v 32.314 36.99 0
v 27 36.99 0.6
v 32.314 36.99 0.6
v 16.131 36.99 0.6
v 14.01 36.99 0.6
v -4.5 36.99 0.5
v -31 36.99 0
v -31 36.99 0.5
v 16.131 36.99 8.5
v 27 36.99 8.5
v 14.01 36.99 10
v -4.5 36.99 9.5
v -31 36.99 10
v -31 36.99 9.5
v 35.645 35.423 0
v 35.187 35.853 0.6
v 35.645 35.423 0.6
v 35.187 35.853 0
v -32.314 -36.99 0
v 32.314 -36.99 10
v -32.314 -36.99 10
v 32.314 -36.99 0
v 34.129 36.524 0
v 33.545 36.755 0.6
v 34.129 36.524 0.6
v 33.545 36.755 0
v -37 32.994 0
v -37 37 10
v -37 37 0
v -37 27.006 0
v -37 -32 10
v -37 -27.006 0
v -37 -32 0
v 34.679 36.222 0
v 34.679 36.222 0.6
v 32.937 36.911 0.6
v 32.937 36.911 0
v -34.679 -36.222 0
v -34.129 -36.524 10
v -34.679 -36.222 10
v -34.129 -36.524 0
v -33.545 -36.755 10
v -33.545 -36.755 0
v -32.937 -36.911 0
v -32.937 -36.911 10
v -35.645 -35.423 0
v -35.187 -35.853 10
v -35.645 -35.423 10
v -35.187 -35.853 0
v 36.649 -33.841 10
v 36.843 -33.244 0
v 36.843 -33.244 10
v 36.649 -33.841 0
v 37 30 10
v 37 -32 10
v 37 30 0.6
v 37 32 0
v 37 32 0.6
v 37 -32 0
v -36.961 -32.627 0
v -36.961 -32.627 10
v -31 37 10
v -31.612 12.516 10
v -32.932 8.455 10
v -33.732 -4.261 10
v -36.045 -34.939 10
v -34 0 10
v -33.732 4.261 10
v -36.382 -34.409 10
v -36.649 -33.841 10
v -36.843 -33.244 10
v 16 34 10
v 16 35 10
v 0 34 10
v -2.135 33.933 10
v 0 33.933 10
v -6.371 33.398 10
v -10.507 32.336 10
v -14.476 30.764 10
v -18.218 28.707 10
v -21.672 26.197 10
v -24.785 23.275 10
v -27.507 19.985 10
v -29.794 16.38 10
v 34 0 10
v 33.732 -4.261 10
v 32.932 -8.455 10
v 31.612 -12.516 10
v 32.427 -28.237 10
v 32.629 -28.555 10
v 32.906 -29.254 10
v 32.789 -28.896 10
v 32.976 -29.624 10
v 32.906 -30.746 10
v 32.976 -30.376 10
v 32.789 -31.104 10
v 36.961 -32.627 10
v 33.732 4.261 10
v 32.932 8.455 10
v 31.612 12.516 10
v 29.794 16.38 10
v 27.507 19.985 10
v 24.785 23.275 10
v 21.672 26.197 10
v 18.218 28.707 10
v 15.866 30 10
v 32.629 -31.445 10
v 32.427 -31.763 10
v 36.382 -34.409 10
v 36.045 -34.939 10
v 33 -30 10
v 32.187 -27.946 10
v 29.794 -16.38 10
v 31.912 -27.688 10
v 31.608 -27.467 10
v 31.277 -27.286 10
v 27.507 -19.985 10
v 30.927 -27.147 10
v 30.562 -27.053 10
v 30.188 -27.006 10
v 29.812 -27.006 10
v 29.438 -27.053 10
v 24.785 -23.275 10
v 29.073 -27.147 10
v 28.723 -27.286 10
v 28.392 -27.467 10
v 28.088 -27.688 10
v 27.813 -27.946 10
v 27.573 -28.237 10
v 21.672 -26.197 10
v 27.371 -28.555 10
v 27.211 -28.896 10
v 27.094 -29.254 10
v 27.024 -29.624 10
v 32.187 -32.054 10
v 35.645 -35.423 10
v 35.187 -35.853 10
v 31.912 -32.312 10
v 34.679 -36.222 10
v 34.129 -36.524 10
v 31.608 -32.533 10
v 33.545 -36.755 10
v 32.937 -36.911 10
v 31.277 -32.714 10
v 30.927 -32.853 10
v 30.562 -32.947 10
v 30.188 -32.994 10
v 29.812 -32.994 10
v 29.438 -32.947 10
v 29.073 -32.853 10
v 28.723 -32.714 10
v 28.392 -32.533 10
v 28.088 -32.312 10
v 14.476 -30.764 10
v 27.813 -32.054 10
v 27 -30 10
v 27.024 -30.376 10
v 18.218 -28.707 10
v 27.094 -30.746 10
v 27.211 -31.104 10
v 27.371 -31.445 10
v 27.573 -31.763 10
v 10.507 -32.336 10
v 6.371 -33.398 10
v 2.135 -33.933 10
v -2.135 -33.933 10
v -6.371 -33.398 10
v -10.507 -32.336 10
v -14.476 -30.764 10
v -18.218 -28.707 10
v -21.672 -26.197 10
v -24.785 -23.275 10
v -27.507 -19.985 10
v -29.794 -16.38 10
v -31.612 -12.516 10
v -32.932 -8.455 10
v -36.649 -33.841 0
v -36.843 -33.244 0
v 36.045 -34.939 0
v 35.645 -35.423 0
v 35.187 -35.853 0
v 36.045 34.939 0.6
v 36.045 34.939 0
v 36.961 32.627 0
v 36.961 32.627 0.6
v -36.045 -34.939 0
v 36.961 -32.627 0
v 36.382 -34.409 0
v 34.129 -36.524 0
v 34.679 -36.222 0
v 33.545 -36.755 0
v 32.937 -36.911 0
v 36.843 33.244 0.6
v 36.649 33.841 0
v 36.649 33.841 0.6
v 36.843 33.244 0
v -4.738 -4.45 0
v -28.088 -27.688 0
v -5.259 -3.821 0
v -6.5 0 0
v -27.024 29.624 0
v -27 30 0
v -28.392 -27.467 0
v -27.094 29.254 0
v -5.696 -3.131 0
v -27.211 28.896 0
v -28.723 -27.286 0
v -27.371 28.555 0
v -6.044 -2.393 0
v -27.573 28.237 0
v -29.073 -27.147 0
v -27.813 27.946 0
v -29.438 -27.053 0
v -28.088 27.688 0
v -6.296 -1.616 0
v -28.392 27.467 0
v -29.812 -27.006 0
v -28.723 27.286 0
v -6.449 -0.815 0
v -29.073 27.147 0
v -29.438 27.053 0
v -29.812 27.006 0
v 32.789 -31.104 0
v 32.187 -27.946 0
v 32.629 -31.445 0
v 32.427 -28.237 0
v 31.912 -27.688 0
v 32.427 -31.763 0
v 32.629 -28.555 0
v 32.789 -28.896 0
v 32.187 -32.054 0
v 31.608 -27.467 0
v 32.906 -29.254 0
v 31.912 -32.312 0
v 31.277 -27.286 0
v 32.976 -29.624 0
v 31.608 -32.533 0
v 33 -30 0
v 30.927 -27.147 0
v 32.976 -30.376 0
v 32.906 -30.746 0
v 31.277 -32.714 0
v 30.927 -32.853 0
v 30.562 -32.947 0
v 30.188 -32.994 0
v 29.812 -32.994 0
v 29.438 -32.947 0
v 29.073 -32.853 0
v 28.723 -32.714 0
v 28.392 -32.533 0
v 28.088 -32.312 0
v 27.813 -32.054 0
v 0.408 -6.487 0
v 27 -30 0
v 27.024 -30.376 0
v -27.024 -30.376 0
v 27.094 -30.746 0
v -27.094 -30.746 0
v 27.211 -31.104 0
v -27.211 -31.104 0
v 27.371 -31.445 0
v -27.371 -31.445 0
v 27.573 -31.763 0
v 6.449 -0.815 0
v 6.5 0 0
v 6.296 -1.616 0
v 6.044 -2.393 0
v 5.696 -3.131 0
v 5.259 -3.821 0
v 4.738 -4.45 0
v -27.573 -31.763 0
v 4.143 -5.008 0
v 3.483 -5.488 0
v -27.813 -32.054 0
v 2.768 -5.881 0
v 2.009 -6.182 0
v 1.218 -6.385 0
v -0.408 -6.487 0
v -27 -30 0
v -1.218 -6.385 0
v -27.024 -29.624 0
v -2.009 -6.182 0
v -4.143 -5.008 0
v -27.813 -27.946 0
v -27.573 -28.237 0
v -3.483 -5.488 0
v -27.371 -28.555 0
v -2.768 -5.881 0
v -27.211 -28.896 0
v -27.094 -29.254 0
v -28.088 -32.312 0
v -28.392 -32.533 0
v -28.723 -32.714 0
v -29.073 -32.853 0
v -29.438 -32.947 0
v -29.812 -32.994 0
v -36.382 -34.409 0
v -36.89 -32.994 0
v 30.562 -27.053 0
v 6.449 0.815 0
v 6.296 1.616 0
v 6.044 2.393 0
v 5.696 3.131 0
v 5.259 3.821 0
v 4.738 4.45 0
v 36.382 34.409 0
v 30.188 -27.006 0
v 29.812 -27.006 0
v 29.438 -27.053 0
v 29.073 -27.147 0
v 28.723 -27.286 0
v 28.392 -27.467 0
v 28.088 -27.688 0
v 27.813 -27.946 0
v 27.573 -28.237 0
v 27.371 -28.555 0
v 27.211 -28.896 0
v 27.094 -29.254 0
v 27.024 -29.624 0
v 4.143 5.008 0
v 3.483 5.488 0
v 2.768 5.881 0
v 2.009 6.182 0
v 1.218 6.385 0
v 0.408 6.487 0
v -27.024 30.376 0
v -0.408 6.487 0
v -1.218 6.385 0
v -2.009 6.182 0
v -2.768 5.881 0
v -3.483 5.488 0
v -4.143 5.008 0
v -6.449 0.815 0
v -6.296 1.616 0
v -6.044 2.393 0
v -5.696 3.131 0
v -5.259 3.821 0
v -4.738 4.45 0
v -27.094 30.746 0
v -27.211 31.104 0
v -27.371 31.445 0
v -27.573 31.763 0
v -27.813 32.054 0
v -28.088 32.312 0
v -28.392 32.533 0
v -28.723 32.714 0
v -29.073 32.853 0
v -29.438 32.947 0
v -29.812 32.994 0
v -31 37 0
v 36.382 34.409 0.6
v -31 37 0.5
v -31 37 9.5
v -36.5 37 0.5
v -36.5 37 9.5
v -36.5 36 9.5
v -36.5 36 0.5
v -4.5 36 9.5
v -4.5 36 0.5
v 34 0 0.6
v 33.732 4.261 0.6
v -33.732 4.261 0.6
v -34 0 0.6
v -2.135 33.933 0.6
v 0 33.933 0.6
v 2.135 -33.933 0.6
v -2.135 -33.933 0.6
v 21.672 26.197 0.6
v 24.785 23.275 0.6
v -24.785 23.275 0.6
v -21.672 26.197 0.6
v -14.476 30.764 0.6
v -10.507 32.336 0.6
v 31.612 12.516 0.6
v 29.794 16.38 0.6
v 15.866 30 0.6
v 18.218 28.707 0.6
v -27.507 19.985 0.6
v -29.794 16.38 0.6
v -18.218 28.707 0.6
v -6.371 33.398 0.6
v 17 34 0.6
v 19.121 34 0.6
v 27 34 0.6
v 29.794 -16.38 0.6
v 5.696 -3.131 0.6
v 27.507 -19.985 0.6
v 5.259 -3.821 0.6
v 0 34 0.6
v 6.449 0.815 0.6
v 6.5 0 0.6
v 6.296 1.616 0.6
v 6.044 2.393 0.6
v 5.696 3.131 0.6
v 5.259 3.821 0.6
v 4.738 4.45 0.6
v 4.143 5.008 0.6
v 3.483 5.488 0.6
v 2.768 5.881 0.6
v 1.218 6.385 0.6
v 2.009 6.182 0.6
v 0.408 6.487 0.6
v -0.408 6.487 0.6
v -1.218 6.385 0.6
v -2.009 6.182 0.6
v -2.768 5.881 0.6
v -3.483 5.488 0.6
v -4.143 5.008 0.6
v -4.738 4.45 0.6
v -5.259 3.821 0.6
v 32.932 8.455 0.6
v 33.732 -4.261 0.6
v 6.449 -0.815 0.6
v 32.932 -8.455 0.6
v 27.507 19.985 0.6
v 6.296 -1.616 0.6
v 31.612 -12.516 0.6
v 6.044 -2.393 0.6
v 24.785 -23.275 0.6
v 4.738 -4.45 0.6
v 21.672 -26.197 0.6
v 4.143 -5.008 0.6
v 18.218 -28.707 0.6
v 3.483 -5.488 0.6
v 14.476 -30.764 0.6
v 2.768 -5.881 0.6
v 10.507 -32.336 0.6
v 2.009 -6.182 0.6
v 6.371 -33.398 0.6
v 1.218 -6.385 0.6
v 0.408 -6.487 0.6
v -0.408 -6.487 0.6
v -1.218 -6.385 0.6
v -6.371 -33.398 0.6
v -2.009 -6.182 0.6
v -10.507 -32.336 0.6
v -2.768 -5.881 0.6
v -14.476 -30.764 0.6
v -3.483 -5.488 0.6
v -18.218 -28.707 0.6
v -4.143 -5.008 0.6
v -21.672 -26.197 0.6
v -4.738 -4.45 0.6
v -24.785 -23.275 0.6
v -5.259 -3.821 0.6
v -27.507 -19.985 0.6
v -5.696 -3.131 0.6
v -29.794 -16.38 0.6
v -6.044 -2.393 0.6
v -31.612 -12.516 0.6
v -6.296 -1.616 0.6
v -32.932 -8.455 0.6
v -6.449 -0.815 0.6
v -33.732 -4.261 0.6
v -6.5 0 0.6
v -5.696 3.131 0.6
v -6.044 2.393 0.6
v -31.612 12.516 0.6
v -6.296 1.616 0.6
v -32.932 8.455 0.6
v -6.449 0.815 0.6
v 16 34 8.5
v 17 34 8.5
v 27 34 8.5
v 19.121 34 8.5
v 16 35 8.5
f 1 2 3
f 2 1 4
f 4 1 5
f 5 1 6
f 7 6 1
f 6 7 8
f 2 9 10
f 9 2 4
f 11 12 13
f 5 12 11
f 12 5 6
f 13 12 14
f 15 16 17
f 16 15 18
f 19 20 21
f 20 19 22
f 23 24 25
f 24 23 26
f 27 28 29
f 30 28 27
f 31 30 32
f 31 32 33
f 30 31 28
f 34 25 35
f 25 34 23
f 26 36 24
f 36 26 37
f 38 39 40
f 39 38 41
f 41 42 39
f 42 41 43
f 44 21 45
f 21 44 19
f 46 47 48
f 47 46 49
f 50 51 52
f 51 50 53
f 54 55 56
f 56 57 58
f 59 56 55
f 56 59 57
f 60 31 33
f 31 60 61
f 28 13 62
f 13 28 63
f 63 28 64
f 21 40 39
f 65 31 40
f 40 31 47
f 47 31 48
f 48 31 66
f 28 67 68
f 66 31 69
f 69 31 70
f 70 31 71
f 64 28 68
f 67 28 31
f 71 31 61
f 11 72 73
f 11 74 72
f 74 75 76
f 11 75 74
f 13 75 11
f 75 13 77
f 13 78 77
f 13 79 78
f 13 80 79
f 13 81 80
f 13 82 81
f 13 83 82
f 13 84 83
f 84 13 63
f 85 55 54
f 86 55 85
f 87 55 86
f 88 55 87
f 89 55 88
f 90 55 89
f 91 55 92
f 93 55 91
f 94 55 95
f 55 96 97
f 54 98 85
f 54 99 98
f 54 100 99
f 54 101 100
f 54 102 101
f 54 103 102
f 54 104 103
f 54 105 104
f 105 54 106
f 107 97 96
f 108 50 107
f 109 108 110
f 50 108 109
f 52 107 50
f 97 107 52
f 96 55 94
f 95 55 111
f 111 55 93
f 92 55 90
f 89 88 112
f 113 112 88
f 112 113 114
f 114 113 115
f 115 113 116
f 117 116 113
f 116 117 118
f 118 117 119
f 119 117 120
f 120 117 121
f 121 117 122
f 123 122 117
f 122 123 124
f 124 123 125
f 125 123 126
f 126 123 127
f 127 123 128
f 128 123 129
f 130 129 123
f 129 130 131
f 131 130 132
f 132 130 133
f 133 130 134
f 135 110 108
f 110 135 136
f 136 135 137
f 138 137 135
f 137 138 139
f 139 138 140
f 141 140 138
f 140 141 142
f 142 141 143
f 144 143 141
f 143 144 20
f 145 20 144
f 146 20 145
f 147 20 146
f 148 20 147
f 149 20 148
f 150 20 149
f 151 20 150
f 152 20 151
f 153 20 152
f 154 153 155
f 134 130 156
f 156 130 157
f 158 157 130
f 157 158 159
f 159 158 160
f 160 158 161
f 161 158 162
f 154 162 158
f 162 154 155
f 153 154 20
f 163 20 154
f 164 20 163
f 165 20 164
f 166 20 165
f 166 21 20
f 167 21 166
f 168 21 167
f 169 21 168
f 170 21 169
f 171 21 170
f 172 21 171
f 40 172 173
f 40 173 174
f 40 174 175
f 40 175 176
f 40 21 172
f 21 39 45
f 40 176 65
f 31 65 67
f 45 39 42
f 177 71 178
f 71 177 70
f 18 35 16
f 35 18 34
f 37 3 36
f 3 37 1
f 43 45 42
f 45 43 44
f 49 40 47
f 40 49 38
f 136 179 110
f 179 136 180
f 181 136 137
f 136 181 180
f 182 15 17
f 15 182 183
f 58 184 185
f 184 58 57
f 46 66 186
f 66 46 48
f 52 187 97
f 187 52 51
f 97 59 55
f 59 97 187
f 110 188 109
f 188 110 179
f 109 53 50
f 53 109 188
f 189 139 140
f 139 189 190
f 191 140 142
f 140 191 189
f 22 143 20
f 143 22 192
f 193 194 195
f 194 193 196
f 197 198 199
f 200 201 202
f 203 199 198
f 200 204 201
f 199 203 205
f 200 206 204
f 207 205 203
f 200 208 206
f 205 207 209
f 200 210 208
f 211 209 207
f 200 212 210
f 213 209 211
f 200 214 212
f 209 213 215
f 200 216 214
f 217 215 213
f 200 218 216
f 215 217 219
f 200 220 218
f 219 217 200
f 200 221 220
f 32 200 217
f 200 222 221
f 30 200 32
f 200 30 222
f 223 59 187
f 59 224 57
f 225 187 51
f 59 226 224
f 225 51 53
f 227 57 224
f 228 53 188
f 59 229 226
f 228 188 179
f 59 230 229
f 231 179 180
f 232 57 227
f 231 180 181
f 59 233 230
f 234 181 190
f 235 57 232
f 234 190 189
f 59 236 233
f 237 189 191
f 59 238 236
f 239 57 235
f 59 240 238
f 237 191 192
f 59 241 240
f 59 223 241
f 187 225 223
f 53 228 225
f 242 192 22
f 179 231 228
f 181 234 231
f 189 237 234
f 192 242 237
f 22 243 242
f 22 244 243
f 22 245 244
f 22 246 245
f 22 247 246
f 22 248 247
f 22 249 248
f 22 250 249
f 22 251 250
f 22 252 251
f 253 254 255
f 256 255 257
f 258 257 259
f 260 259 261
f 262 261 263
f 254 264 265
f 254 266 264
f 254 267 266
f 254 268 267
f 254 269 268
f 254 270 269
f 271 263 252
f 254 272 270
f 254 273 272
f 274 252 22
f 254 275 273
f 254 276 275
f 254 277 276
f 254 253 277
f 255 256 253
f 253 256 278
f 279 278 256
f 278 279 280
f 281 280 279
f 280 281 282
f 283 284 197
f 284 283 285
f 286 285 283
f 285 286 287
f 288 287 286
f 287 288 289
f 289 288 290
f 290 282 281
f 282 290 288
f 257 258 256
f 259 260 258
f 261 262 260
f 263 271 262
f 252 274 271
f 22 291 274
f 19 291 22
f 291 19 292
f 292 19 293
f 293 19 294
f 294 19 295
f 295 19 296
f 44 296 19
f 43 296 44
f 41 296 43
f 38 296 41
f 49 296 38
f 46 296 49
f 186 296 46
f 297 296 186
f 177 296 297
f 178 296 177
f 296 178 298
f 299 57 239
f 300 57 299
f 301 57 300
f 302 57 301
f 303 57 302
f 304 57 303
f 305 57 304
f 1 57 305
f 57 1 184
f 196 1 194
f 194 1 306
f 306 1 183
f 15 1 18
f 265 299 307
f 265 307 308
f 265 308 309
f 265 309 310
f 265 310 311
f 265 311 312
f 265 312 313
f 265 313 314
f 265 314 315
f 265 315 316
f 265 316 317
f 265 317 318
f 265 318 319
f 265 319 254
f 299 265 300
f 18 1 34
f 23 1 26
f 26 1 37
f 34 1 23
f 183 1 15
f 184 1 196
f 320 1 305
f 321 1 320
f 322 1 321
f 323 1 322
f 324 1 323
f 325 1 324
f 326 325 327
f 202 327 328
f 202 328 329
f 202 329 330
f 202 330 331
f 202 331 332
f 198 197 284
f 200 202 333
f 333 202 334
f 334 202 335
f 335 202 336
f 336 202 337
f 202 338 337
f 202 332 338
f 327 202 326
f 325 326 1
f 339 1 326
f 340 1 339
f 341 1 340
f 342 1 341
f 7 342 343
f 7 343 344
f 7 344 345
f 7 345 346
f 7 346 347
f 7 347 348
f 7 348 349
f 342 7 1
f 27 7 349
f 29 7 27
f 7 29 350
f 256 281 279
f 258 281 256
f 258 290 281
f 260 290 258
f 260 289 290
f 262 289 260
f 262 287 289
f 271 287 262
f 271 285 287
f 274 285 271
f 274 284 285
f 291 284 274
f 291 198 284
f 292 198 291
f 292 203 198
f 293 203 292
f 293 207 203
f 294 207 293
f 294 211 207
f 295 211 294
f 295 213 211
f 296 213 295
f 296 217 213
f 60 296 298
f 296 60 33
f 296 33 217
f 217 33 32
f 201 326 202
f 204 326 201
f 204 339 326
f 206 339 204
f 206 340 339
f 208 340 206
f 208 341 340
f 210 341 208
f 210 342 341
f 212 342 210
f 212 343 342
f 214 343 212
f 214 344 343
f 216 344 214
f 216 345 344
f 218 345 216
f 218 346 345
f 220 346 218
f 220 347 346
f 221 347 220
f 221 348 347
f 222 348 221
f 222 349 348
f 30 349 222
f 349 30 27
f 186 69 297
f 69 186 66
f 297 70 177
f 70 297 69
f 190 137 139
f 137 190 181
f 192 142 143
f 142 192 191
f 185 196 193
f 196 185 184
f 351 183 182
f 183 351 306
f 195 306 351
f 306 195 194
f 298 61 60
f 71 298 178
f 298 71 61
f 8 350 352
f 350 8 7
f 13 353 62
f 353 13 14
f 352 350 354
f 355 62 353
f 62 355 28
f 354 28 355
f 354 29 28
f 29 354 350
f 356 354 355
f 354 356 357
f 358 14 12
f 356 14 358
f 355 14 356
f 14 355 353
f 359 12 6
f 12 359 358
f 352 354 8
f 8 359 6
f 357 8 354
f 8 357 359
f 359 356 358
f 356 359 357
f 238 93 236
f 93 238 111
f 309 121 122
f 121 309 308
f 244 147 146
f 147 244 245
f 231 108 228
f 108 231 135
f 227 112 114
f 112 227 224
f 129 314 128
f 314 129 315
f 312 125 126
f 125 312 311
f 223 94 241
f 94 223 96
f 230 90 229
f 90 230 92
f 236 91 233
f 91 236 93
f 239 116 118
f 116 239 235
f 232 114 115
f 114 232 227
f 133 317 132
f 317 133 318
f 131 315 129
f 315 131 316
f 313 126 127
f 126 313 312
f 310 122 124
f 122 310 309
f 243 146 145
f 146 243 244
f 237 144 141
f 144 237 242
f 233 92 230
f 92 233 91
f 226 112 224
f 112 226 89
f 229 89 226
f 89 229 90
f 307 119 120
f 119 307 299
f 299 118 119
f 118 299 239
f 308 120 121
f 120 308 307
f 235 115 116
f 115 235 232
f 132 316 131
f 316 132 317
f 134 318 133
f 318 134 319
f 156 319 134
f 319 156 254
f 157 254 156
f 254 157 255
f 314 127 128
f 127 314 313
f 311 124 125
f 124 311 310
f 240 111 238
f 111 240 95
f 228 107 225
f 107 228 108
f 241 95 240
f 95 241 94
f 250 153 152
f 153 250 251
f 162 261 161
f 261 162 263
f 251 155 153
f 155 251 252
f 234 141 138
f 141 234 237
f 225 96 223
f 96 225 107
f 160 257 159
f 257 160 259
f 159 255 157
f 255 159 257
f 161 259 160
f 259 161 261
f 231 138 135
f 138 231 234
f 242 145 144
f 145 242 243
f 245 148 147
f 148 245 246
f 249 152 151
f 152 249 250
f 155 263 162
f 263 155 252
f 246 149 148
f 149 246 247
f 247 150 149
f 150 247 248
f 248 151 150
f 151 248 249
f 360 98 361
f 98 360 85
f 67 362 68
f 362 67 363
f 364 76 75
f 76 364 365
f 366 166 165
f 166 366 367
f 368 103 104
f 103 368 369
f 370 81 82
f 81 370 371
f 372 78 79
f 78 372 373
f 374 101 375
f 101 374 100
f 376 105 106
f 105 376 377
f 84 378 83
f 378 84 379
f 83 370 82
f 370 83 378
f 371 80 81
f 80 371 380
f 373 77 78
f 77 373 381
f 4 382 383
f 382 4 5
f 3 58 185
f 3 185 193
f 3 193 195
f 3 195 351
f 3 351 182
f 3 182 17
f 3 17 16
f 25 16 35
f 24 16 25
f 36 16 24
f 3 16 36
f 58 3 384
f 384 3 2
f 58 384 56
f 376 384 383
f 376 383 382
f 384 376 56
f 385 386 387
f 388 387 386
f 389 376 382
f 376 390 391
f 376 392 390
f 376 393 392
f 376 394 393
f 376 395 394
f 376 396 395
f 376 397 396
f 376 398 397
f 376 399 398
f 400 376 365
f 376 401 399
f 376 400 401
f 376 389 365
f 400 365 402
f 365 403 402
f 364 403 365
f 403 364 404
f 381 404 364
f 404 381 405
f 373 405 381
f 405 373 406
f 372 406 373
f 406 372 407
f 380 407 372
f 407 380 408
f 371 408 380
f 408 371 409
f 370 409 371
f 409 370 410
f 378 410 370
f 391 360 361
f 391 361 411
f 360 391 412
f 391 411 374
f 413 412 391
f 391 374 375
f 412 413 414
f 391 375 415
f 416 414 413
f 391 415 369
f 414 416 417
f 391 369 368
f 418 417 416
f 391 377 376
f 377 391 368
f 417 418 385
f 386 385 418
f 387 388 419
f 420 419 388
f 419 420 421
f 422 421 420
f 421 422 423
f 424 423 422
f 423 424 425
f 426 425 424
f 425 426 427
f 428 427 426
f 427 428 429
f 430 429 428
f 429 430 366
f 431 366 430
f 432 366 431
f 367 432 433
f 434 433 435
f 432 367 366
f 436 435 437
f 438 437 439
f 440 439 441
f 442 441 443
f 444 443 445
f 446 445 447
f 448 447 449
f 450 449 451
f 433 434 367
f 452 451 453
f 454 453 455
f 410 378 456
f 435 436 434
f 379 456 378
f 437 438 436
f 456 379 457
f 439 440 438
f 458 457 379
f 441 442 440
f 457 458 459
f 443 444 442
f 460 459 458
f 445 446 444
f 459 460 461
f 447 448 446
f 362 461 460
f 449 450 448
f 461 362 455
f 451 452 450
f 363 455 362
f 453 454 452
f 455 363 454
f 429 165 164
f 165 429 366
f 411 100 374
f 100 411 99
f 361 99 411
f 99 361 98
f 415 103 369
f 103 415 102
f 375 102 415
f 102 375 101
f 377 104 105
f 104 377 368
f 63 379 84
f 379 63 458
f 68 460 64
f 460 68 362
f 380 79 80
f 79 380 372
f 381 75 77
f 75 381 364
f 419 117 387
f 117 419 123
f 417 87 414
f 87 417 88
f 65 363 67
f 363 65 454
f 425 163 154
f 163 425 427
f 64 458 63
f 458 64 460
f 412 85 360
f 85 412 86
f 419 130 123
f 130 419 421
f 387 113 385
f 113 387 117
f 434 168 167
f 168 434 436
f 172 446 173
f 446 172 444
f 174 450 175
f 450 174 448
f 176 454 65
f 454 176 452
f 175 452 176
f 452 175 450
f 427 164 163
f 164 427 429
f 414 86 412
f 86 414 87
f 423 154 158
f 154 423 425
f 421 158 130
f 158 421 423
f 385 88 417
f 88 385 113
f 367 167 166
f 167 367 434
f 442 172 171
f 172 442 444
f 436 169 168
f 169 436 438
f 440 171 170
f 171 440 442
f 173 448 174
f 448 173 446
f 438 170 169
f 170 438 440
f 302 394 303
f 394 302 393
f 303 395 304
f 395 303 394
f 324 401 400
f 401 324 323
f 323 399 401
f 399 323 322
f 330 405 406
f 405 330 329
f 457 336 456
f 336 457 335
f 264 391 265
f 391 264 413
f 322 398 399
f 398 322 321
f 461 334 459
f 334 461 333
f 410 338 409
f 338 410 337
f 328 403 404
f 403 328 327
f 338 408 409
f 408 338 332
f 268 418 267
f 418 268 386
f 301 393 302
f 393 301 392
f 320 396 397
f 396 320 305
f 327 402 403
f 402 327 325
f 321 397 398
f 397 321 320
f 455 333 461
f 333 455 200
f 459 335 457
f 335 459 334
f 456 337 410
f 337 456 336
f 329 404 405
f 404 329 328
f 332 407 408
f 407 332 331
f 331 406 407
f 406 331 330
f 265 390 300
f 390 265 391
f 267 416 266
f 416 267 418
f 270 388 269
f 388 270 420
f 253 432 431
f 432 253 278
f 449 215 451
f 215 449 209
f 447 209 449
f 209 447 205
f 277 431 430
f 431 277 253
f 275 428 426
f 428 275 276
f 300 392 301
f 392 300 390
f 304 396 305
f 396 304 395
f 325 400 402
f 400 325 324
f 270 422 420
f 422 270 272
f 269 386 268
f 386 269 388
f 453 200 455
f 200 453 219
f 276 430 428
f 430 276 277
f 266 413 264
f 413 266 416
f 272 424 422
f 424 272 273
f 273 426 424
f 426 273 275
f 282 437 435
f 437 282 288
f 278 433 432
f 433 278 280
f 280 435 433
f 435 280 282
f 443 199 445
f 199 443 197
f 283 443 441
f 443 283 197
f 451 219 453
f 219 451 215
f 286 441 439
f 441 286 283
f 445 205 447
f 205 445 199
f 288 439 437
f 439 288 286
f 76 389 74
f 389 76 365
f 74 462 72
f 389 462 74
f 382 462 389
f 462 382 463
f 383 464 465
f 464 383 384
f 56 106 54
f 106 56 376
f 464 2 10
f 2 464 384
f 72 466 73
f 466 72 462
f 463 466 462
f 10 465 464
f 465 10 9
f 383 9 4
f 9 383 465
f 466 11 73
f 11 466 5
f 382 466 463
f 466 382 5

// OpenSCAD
$fn = 50;


difference() {
	union() {
		hull() {
			translate(v = [-32.0000000000, 32.0000000000, 0]) {
				cylinder(h = 10, r = 5);
			}
			translate(v = [32.0000000000, 32.0000000000, 0]) {
				cylinder(h = 10, r = 5);
			}
			translate(v = [-32.0000000000, -32.0000000000, 0]) {
				cylinder(h = 10, r = 5);
			}
			translate(v = [32.0000000000, -32.0000000000, 0]) {
				cylinder(h = 10, r = 5);
			}
		}
		translate(v = [-37.0000000000, 31.0000000000, 0]) {
			cube(size = [6, 6, 10]);
		}
	}
	union() {
		translate(v = [-37.5000000000, -30.0000000000, -250.0000000000]) {
			rotate(a = [0, 0, 0]) {
				difference() {
					union() {
						hull() {
							translate(v = [7.5000000000, 0, 0]) {
								cylinder(h = 250, r = 3.0000000000, r1 = 3.0000000000, r2 = 3.0000000000);
							}
							translate(v = [-7.5000000000, 0, 0]) {
								cylinder(h = 250, r = 3.0000000000, r1 = 3.0000000000, r2 = 3.0000000000);
							}
						}
					}
					union();
				}
			}
		}
		translate(v = [-37.5000000000, 30.0000000000, -250.0000000000]) {
			rotate(a = [0, 0, 0]) {
				difference() {
					union() {
						hull() {
							translate(v = [7.5000000000, 0, 0]) {
								cylinder(h = 250, r = 3.0000000000, r1 = 3.0000000000, r2 = 3.0000000000);
							}
							translate(v = [-7.5000000000, 0, 0]) {
								cylinder(h = 250, r = 3.0000000000, r1 = 3.0000000000, r2 = 3.0000000000);
							}
						}
					}
					union();
				}
			}
		}
		translate(v = [-36.5000000000, 36.0000000000, 0.5000000000]) {
			cube(size = [32, 1, 9.0000000000]);
		}
		translate(v = [30.0000000000, -30.0000000000, -50.0000000000]) {
			cylinder(h = 100, r = 3.0000000000);
		}
		translate(v = [0, 0, 0.6000000000]) {
			cylinder(h = 12.4000000000, r = 34.0000000000);
		}
		translate(v = [0, 0, -5.0000000000]) {
			cylinder(h = 10, r = 6.5000000000);
		}
		translate(v = [0.0000000000, 30.0000000000, 0.6000000000]) {
			cube(size = [37.0000000000, 4, 12.4000000000]);
		}
		translate(v = [27.0000000000, 30.0000000000, 0.6000000000]) {
			cube(size = [10, 7, 12.4000000000]);
		}
		translate(v = [16.0000000000, 30.0000000000, 8.5000000000]) {
			cube(size = [21, 7, 1.5000000000]);
		}
		translate(v = [13.2500000000, 37.7500000000, 0.6000000000]) {
			rotate(a = [0, 0, -45]) {
				cube(size = [7.5000000000, 1.5000000000, 12.4000000000]);
			}
		}
		translate(v = [7.0610000000, 28.0000000000, 0.6000000000]) {
			cube(size = [7.5000000000, 2, 9.4000000000]);
		}
	}
}
